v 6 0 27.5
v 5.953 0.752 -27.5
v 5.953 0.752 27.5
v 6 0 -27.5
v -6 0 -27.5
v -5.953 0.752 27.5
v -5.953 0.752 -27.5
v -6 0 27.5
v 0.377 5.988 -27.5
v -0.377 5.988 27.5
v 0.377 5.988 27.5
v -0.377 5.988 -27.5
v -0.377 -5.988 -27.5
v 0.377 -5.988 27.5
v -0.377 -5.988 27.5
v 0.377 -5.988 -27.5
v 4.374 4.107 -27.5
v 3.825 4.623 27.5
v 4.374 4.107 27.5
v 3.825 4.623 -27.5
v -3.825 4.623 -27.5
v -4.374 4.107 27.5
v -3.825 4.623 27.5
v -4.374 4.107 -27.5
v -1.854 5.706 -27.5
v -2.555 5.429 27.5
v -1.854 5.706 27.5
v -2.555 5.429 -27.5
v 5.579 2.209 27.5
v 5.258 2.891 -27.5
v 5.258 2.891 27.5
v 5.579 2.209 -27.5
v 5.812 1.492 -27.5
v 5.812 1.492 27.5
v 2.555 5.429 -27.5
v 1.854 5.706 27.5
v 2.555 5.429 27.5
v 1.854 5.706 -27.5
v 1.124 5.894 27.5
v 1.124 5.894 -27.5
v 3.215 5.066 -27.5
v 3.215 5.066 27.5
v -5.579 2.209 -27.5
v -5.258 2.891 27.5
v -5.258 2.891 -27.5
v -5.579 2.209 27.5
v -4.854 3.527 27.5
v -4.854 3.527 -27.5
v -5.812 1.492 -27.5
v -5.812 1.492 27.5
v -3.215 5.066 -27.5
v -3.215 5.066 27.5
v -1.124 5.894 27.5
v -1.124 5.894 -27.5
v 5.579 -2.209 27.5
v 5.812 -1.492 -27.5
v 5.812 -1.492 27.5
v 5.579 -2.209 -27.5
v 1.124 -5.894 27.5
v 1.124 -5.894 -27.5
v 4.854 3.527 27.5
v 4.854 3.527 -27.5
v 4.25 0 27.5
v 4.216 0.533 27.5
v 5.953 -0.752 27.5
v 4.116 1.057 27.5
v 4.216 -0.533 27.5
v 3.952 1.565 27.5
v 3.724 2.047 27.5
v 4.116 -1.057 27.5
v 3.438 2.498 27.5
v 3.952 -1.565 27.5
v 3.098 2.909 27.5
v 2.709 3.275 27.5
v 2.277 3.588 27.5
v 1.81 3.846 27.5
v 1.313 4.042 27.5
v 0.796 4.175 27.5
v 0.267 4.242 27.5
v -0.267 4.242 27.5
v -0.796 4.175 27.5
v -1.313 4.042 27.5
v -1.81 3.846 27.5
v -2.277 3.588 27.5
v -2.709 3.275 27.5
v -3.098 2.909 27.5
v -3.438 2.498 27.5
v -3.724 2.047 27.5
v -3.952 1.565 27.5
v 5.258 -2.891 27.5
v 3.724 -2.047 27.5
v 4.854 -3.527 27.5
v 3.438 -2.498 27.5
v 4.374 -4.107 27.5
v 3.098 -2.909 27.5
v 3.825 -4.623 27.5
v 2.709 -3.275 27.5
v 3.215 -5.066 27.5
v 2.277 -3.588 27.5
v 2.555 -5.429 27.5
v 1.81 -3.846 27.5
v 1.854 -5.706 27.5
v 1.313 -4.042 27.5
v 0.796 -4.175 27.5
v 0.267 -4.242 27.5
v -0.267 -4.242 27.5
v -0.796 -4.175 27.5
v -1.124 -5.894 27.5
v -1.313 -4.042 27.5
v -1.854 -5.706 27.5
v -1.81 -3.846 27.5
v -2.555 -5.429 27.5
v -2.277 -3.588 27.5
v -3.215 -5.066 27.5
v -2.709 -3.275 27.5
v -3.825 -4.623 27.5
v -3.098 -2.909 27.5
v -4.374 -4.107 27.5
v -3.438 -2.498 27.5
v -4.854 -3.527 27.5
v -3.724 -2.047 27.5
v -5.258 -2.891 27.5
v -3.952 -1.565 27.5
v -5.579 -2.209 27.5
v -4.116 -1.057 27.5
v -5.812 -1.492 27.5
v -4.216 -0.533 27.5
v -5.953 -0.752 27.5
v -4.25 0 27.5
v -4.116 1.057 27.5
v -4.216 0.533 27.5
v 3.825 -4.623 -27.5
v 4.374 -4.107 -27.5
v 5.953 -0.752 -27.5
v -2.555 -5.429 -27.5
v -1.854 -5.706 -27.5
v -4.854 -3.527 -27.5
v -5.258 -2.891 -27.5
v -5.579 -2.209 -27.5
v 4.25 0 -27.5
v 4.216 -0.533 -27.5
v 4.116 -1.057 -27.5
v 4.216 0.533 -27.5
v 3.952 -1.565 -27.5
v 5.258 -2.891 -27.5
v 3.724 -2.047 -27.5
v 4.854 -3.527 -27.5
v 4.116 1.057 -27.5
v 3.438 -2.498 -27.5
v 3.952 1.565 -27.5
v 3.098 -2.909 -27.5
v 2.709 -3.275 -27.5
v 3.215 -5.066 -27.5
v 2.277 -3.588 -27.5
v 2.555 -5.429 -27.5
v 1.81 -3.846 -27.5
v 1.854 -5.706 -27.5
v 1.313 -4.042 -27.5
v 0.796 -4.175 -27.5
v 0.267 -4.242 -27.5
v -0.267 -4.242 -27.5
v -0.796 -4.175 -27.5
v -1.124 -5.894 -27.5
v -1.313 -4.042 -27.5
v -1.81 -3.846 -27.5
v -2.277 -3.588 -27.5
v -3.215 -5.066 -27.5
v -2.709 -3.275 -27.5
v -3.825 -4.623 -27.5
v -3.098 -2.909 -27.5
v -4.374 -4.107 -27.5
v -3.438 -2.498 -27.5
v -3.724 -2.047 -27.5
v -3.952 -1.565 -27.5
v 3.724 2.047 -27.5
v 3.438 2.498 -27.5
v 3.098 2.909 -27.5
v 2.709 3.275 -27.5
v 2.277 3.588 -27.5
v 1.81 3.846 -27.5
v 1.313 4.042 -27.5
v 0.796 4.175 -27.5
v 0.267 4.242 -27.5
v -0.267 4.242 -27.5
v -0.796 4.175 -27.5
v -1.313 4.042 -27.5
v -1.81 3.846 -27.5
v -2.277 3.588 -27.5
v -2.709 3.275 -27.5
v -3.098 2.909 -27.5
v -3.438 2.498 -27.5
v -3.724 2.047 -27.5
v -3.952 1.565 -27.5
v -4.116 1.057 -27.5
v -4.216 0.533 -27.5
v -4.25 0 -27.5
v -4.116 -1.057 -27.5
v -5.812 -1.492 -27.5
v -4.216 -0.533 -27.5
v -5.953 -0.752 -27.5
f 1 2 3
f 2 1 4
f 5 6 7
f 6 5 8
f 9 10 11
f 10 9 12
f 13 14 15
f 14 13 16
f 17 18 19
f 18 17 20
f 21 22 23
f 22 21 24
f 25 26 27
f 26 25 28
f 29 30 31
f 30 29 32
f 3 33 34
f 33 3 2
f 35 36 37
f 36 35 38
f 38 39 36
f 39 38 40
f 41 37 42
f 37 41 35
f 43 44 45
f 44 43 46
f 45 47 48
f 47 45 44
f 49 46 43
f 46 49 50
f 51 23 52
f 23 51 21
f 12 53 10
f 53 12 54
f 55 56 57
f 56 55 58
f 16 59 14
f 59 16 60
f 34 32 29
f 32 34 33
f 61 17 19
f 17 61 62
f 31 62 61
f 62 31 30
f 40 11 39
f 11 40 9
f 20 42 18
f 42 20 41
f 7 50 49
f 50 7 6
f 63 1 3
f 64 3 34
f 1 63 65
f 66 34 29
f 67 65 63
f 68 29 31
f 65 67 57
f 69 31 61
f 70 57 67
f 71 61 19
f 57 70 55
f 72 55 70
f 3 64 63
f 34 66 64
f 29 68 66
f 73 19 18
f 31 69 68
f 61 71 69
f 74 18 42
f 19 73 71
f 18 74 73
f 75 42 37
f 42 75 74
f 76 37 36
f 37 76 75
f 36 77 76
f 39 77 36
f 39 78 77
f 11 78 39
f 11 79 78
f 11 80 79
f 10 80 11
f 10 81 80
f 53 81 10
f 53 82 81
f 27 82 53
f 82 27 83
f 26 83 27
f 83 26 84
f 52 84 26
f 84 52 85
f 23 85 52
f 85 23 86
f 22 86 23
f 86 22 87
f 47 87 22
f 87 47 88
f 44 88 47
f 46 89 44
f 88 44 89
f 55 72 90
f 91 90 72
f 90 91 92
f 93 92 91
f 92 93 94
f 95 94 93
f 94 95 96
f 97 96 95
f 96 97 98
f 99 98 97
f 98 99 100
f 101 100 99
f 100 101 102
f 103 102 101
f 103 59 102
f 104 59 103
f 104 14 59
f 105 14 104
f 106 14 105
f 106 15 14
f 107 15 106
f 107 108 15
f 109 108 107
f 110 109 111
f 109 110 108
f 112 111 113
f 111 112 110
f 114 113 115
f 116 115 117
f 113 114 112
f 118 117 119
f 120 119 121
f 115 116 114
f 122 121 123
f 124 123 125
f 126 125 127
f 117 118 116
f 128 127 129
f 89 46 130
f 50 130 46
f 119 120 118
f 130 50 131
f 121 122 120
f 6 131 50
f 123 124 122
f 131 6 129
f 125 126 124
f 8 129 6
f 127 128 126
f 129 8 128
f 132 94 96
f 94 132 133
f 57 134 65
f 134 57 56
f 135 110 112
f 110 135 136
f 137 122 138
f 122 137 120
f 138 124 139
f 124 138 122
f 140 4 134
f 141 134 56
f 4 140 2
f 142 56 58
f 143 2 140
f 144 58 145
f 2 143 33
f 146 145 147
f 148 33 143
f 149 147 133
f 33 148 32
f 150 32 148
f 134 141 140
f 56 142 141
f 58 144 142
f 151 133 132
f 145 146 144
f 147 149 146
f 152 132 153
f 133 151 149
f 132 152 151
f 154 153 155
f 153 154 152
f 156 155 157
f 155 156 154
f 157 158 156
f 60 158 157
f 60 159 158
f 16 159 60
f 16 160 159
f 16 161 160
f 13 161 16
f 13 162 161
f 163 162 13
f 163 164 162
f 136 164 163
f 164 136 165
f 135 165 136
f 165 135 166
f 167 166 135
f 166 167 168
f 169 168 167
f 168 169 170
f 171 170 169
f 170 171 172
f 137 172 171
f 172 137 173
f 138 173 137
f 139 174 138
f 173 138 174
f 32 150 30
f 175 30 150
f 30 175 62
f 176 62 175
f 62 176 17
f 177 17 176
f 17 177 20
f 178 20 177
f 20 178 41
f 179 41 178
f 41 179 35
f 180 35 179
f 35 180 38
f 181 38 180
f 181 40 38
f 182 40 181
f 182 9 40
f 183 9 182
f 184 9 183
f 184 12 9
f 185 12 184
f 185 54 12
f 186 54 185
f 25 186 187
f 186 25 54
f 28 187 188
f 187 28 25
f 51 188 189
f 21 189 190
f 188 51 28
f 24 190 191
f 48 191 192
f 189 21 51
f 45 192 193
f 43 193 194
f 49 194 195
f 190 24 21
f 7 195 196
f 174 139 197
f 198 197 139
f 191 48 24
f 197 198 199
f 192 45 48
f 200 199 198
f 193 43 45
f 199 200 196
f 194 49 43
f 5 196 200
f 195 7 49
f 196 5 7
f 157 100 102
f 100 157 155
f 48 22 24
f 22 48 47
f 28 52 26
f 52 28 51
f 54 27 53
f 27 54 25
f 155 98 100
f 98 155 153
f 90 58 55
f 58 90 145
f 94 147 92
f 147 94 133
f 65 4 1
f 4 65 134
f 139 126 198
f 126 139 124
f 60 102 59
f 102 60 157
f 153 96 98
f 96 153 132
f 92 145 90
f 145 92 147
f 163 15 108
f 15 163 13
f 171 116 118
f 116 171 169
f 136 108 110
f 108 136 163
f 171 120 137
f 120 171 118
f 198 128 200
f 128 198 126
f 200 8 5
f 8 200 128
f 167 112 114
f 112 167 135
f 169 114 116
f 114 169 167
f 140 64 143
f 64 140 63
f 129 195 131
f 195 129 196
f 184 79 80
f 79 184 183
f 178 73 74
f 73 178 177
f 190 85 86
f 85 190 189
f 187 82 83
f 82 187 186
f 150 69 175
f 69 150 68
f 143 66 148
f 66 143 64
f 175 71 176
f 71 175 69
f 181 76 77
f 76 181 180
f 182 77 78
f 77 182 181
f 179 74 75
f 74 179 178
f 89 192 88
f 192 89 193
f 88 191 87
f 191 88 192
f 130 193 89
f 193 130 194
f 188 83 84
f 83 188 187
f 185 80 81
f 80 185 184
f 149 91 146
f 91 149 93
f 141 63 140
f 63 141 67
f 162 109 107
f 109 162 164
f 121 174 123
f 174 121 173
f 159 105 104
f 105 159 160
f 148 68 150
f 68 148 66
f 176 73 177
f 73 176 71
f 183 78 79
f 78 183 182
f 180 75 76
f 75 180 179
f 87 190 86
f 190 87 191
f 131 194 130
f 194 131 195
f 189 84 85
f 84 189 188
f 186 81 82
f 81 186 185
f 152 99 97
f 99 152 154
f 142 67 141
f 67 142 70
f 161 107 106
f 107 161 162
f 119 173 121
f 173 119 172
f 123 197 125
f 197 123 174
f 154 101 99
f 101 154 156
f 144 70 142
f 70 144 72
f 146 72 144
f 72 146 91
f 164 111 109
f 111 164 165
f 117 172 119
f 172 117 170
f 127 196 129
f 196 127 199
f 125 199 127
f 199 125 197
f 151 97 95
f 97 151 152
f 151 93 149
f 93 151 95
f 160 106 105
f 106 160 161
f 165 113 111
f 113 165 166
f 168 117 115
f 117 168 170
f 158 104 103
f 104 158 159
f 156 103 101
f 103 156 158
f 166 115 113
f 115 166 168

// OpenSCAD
$fn = 50;


difference() {
	union() {
		translate(v = [0, 0, -27.5000000000]) {
			cylinder(h = 55, r = 6.0000000000);
		}
	}
	union() {
		translate(v = [0, 0, -100.0000000000]) {
			cylinder(h = 200, r = 4.2500000000);
		}
	}
}
